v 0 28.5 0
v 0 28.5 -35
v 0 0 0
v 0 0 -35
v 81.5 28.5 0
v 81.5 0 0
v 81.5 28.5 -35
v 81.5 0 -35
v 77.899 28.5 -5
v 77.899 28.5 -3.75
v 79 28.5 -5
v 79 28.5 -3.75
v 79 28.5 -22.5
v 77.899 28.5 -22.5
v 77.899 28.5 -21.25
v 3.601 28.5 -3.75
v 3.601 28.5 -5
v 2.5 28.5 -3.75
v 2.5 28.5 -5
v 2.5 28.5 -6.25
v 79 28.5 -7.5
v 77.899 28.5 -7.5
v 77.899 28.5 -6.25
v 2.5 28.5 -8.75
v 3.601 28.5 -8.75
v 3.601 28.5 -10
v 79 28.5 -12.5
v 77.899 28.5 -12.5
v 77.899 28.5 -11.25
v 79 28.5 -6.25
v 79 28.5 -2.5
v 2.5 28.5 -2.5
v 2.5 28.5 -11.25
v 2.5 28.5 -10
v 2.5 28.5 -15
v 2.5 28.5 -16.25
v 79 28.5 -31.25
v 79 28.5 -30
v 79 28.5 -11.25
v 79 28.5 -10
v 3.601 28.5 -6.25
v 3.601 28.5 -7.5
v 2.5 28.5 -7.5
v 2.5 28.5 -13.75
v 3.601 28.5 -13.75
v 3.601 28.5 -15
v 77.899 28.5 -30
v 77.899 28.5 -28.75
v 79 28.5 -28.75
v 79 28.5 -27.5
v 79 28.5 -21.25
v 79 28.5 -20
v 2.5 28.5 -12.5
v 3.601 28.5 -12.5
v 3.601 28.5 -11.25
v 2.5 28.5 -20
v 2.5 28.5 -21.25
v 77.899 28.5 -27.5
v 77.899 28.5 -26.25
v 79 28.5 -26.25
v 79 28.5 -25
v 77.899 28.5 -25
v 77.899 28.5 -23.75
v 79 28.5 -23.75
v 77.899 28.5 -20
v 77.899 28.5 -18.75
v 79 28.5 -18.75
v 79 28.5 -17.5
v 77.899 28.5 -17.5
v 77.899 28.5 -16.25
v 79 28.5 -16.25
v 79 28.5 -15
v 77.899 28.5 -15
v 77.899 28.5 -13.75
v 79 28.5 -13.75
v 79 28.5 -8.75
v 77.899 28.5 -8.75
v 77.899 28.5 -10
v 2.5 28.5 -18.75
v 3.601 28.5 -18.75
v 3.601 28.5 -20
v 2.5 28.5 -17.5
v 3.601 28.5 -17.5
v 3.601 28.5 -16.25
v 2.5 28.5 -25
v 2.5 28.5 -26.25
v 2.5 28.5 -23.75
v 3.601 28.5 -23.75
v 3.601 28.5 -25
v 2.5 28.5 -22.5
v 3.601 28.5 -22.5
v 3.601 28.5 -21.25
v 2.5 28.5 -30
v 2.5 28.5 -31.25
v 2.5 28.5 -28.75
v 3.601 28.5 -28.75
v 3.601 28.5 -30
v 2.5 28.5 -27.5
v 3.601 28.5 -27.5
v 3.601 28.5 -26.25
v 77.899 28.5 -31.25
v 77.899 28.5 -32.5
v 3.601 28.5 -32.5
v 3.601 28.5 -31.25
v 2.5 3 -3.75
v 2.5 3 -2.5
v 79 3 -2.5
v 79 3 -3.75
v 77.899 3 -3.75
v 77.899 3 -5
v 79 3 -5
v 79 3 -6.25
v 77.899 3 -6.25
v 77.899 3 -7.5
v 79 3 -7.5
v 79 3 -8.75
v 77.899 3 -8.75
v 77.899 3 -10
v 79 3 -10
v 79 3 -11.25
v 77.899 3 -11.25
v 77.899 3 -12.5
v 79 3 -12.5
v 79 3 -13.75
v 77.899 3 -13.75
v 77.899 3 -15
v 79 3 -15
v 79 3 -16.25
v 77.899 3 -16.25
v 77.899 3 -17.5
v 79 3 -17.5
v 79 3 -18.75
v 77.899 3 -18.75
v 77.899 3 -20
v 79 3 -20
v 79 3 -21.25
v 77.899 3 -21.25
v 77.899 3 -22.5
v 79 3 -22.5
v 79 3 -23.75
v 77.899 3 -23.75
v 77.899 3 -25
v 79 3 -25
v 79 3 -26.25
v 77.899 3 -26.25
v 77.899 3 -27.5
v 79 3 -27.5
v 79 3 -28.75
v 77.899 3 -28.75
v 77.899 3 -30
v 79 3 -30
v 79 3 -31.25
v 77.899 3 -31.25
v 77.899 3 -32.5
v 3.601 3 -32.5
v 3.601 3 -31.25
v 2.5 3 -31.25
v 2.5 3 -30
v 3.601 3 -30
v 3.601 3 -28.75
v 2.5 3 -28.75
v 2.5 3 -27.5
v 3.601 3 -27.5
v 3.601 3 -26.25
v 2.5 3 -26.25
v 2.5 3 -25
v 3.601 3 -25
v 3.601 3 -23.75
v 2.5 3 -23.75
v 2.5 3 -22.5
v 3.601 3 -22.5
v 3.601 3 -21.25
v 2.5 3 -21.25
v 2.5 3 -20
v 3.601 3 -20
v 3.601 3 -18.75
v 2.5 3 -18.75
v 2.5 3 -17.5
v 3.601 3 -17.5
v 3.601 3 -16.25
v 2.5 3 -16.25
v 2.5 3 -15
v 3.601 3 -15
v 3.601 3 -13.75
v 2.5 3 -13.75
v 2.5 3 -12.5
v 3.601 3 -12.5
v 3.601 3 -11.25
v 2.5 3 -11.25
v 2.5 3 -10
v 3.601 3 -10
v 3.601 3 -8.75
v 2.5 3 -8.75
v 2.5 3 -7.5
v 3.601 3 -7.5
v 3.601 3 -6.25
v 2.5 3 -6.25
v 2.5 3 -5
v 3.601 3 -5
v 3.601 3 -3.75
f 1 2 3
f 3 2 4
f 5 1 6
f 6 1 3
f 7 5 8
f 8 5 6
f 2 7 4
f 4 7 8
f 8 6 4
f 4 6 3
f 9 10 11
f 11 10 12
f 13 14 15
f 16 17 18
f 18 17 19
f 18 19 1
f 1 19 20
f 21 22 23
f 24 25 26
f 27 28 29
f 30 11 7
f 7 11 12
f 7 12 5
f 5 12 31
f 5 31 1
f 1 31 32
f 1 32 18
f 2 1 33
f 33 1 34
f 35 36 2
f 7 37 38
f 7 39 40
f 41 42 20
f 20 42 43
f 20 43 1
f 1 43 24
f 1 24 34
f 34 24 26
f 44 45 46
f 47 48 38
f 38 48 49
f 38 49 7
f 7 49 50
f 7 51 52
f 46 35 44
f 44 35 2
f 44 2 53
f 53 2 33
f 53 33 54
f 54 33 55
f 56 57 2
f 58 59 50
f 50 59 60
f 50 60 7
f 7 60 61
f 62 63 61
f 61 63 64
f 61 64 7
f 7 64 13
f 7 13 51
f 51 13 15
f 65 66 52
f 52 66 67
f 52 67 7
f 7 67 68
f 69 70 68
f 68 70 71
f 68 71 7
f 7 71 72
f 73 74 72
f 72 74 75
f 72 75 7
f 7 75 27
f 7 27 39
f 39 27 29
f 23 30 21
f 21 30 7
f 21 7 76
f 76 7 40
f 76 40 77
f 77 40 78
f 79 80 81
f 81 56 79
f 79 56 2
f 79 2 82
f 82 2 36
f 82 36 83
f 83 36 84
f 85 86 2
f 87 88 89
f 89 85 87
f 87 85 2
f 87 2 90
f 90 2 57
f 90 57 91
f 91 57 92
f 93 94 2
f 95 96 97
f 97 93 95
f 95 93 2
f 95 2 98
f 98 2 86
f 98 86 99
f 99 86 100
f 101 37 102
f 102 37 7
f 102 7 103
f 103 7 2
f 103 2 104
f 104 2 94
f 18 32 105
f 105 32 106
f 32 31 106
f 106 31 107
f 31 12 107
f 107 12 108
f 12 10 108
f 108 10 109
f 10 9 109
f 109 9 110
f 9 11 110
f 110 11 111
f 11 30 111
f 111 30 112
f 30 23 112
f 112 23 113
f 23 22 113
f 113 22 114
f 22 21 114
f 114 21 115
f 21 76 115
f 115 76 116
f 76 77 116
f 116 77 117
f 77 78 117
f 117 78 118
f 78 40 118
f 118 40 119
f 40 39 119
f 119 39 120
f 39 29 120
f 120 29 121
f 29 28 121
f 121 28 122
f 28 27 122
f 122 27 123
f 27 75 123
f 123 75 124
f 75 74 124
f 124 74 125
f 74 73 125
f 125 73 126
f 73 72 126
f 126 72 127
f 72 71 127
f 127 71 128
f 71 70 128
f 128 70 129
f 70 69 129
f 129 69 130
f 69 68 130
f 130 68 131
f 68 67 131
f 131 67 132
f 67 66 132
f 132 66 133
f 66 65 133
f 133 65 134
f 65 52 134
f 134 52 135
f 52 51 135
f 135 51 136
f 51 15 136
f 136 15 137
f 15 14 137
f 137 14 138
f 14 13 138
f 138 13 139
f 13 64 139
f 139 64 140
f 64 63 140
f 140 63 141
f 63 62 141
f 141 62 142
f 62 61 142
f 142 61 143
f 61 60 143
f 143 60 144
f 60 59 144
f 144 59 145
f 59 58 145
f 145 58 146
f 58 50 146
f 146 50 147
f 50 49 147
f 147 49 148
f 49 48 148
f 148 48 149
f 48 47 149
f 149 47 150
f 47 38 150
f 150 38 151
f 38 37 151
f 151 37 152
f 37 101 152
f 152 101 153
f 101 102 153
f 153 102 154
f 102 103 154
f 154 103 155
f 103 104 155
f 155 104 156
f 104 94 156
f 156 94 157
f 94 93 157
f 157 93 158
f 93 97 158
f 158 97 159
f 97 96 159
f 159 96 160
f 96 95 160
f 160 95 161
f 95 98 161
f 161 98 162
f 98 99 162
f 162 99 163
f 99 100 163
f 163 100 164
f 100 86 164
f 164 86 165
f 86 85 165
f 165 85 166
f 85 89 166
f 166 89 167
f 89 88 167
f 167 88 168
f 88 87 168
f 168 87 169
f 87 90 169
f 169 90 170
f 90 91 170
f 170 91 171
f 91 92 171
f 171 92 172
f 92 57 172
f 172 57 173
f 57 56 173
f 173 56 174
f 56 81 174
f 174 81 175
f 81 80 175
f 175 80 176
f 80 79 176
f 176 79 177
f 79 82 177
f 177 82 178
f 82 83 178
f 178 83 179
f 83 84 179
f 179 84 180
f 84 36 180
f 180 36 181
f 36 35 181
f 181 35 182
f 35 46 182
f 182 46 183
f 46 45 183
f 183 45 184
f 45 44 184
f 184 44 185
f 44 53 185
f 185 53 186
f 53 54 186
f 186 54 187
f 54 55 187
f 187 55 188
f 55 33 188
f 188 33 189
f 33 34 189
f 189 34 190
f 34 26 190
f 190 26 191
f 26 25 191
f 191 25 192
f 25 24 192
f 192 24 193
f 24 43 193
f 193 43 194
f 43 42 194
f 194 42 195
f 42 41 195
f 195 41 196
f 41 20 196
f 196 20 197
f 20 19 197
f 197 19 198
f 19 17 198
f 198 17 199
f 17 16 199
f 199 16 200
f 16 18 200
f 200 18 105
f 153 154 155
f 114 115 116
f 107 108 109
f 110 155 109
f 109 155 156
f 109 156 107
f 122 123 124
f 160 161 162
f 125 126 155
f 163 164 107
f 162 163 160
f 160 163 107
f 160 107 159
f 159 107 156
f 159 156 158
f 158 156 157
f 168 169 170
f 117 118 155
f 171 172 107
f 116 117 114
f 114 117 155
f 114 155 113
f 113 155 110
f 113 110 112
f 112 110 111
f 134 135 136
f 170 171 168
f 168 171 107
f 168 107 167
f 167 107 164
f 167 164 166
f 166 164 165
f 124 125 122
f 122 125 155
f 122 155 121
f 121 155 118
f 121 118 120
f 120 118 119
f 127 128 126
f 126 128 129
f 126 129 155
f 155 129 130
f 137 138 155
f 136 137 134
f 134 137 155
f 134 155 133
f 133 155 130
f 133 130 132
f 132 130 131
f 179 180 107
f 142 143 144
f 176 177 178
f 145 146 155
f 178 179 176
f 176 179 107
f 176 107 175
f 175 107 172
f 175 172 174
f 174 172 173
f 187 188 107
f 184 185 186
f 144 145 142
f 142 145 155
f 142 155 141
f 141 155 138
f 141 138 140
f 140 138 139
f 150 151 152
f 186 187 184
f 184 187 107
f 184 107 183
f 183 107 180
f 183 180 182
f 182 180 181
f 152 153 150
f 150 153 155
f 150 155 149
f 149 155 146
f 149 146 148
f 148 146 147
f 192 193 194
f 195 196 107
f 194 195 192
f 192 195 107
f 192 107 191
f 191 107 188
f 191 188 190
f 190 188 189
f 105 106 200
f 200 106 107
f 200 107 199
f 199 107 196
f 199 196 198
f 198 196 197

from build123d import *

# Parameters (mm, degrees)
SKETCH1_W           = 81.5
SKETCH1_H           = 35
BOSS_EXTRUDE1_DEPTH = 3
SKETCH2_W           = 81.5
SKETCH2_H           = 35
BOSS_EXTRUDE2_DEPTH = 25.5


with BuildPart() as part:
    # Sketch1 → Boss-Extrude1 (new body)
    with BuildSketch(Plane(origin=(0, 0, 0), x_dir=(1, 0, 0), z_dir=(0, 1, 0))):
        with Locations((40.75, 17.5)):
            Rectangle(SKETCH1_W, SKETCH1_H)
    extrude(amount=BOSS_EXTRUDE1_DEPTH)

    # Sketch2 → Boss-Extrude2 (add)
    with BuildSketch(Plane(origin=(0, 3, 0), x_dir=(1, 0, 0), z_dir=(0, 1, 0))):
        with Locations((40.75, 17.5)):
            Rectangle(SKETCH2_W, SKETCH2_H)
        Polygon((79, 5), (79, 6.25), (77.899410911, 6.25), (77.899410911, 7.5), (79, 7.5), (79, 8.75), (77.899410911, 8.75), (77.899410911, 10), (79, 10), (79, 11.25), (77.899410911, 11.25), (77.899410911, 12.5), (79, 12.5), (79, 13.75), (77.899410911, 13.75), (77.899410911, 15), (79, 15), (79, 16.25), (77.899410911, 16.25), (77.899410911, 17.5), (79, 17.5), (79, 18.75), (77.899410911, 18.75), (77.899410911, 20), (79, 20), (79, 21.25), (77.899410911, 21.25), (77.899410911, 22.5), (79, 22.5), (79, 23.75), (77.899410911, 23.75), (77.899410911, 25), (79, 25), (79, 26.25), (77.899410911, 26.25), (77.899410911, 27.5), (79, 27.5), (79, 28.75), (77.899410911, 28.75), (77.899410911, 30), (79, 30), (79, 31.25), (77.899410911, 31.25), (77.899410911, 32.5), (3.600589089, 32.5), (3.600589089, 31.25), (2.5, 31.25), (2.5, 30), (3.600589089, 30), (3.600589089, 28.75), (2.5, 28.75), (2.5, 27.5), (3.600589089, 27.5), (3.600589089, 26.25), (2.5, 26.25), (2.5, 25), (3.600589089, 25), (3.600589089, 23.75), (2.5, 23.75), (2.5, 22.5), (3.600589089, 22.5), (3.600589089, 21.25), (2.5, 21.25), (2.5, 20), (3.600589089, 20), (3.600589089, 18.75), (2.5, 18.75), (2.5, 17.5), (3.600589089, 17.5), (3.600589089, 16.25), (2.5, 16.25), (2.5, 15), (3.600589089, 15), (3.600589089, 13.75), (2.5, 13.75), (2.5, 12.5), (3.600589089, 12.5), (3.600589089, 11.25), (2.5, 11.25), (2.5, 10), (3.600589089, 10), (3.600589089, 8.75), (2.5, 8.75), (2.5, 7.5), (3.600589089, 7.5), (3.600589089, 6.25), (2.5, 6.25), (2.5, 5), (3.600589089, 5), (3.600589089, 3.75), (2.5, 3.75), (2.5, 2.5), (79, 2.5), (79, 3.75), (77.899410911, 3.75), (77.899410911, 5), align=None, mode=Mode.SUBTRACT)
    extrude(amount=BOSS_EXTRUDE2_DEPTH)


solid = part.part
